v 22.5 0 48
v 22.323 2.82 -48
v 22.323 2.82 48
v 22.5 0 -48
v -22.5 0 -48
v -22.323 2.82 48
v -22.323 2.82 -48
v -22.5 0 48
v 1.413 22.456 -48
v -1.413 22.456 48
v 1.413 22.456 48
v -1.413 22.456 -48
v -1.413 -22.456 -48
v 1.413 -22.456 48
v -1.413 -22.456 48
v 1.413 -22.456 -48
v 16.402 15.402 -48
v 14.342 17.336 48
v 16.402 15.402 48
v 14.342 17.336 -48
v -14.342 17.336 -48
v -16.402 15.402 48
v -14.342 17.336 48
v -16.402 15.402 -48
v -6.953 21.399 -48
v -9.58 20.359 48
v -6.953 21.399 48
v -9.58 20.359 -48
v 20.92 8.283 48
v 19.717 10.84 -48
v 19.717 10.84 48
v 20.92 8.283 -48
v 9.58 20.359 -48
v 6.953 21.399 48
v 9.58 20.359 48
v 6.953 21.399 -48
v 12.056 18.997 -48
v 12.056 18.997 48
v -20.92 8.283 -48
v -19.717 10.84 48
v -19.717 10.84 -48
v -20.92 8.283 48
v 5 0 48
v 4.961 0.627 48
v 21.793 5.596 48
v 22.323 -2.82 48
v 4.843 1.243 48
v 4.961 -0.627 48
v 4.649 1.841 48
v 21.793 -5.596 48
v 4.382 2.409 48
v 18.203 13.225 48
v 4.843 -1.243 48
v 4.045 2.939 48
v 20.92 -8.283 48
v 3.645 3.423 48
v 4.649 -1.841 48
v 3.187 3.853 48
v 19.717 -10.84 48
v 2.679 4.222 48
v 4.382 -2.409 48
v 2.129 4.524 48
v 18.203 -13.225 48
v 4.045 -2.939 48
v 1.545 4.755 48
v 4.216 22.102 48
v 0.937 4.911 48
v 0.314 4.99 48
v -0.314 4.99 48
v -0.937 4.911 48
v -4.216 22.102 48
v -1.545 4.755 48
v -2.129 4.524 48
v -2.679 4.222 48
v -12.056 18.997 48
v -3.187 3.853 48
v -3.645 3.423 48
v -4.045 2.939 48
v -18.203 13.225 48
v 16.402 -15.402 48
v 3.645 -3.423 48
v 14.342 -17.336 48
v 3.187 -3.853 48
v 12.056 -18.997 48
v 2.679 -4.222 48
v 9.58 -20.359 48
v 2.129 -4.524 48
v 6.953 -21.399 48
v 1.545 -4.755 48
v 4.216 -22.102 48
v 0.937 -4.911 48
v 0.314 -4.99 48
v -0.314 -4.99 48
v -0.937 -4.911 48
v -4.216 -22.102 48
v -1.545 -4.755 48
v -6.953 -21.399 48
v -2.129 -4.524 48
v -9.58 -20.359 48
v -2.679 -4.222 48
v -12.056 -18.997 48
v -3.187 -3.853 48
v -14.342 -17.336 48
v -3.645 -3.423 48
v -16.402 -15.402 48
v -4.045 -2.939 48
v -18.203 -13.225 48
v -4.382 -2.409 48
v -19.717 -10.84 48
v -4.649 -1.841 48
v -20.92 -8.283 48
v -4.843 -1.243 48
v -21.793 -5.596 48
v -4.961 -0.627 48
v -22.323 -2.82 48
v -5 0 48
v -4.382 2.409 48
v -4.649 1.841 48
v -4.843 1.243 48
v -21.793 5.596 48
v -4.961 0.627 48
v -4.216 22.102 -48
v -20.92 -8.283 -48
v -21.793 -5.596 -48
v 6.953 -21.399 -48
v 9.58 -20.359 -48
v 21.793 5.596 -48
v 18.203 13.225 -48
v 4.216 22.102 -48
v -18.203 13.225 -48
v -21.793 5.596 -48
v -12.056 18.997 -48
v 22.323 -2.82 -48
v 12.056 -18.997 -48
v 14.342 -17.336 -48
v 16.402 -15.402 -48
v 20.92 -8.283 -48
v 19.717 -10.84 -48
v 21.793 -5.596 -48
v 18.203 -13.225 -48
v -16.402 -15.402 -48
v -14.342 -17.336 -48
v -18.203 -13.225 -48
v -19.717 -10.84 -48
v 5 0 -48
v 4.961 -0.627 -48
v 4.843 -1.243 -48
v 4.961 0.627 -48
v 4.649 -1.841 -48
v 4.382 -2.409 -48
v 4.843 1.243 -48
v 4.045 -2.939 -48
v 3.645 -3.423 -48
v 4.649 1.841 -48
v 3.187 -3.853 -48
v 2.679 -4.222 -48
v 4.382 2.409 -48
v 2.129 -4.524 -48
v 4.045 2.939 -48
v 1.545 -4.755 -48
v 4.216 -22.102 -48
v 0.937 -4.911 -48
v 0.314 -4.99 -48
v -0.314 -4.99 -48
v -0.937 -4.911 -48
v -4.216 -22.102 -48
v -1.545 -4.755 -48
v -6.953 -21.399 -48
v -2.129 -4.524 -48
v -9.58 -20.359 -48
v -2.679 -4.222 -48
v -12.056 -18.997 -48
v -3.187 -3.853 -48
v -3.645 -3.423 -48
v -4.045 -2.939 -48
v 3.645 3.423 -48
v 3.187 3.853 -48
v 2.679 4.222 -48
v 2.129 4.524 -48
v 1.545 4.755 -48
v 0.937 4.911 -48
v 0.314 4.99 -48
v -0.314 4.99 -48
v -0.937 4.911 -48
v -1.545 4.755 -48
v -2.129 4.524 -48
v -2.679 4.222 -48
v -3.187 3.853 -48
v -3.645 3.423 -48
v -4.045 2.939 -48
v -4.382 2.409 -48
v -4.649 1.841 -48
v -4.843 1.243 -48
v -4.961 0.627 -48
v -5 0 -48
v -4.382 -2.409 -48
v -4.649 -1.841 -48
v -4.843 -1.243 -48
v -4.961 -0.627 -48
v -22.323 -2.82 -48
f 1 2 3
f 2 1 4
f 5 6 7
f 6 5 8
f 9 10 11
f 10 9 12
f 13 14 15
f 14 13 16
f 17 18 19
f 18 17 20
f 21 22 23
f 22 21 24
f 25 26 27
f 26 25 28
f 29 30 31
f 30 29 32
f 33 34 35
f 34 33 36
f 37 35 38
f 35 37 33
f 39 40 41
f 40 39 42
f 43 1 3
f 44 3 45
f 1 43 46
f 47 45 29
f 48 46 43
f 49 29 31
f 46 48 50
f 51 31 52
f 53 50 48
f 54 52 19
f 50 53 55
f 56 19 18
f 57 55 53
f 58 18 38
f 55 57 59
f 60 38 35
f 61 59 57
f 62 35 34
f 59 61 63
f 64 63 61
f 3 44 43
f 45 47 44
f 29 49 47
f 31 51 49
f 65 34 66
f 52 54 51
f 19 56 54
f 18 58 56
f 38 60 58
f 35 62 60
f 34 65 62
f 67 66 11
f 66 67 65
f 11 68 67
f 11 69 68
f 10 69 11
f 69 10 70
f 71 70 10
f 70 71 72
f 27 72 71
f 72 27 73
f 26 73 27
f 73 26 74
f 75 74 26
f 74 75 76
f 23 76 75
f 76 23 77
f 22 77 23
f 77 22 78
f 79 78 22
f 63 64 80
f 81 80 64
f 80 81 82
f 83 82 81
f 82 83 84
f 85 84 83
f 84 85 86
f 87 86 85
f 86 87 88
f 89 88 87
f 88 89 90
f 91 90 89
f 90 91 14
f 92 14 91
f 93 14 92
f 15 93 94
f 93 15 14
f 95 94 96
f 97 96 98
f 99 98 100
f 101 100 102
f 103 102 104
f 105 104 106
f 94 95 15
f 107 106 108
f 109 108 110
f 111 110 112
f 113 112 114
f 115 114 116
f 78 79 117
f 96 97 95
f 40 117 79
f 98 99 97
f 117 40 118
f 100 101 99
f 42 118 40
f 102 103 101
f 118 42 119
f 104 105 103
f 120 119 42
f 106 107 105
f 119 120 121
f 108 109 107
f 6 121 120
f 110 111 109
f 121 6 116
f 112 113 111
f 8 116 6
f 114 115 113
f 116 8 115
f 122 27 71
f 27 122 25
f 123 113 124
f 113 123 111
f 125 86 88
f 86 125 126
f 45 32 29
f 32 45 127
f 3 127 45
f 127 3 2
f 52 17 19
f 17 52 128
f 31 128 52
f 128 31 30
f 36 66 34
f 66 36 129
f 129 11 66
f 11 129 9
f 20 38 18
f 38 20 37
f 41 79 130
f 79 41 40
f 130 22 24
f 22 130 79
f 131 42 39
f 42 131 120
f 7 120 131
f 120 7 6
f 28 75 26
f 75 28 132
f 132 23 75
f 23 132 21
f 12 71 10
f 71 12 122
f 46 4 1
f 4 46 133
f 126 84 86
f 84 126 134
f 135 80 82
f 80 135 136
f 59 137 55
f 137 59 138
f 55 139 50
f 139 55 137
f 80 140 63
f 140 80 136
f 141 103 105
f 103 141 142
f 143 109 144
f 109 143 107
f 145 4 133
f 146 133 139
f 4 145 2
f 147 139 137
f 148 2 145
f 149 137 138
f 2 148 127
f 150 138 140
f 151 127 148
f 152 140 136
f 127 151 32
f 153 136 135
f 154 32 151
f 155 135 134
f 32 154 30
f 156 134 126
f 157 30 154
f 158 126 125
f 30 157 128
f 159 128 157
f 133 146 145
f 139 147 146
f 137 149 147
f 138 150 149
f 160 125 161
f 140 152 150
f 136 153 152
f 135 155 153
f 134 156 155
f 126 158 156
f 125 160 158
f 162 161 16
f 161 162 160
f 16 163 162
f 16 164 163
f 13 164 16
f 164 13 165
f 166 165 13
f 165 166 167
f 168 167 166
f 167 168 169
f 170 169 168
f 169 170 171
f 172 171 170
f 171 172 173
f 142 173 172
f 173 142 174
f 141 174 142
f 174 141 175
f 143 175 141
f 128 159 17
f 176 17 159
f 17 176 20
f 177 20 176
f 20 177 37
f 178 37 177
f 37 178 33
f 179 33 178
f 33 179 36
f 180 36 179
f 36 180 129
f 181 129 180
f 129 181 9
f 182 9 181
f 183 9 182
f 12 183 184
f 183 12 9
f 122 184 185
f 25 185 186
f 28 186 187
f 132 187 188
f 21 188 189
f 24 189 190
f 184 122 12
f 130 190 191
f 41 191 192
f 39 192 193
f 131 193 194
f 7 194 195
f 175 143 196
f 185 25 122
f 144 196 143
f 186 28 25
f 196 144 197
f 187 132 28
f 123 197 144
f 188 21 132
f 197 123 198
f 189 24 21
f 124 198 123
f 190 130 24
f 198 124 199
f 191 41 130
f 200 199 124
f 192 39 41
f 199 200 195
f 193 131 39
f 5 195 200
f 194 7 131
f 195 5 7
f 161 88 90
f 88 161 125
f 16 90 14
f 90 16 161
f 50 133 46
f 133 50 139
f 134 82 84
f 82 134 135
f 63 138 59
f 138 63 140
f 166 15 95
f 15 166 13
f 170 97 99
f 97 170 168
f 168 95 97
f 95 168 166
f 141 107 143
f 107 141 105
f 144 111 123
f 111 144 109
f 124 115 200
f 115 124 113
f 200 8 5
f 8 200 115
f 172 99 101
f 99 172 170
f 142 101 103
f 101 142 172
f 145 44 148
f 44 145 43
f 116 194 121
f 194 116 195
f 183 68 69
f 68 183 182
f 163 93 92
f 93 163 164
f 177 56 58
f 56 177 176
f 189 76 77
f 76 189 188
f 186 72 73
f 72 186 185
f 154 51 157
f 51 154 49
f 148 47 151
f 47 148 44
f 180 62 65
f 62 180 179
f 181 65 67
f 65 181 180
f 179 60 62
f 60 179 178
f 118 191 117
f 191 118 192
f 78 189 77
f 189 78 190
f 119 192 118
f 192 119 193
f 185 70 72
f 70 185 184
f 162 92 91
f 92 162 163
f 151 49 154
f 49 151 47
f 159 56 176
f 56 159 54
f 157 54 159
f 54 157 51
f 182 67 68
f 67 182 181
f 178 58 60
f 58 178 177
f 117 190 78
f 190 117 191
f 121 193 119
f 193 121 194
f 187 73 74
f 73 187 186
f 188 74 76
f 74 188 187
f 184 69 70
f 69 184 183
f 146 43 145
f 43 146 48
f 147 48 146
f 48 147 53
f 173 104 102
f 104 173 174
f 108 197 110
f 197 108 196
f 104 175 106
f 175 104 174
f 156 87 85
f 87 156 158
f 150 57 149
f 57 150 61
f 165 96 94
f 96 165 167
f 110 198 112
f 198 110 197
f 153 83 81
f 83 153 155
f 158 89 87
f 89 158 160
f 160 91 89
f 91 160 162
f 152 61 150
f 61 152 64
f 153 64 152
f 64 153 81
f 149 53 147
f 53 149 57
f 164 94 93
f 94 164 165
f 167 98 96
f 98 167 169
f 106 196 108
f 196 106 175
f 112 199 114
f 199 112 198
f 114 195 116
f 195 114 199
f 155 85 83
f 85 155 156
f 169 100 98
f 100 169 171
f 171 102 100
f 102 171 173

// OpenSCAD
$fn = 50;


difference() {
	union() {
		translate(v = [0, 0, -48.0000000000]) {
			cylinder(h = 96, r = 22.5000000000);
		}
	}
	union() {
		translate(v = [0, 0, -100.0000000000]) {
			cylinder(h = 200, r = 5);
		}
	}
}
